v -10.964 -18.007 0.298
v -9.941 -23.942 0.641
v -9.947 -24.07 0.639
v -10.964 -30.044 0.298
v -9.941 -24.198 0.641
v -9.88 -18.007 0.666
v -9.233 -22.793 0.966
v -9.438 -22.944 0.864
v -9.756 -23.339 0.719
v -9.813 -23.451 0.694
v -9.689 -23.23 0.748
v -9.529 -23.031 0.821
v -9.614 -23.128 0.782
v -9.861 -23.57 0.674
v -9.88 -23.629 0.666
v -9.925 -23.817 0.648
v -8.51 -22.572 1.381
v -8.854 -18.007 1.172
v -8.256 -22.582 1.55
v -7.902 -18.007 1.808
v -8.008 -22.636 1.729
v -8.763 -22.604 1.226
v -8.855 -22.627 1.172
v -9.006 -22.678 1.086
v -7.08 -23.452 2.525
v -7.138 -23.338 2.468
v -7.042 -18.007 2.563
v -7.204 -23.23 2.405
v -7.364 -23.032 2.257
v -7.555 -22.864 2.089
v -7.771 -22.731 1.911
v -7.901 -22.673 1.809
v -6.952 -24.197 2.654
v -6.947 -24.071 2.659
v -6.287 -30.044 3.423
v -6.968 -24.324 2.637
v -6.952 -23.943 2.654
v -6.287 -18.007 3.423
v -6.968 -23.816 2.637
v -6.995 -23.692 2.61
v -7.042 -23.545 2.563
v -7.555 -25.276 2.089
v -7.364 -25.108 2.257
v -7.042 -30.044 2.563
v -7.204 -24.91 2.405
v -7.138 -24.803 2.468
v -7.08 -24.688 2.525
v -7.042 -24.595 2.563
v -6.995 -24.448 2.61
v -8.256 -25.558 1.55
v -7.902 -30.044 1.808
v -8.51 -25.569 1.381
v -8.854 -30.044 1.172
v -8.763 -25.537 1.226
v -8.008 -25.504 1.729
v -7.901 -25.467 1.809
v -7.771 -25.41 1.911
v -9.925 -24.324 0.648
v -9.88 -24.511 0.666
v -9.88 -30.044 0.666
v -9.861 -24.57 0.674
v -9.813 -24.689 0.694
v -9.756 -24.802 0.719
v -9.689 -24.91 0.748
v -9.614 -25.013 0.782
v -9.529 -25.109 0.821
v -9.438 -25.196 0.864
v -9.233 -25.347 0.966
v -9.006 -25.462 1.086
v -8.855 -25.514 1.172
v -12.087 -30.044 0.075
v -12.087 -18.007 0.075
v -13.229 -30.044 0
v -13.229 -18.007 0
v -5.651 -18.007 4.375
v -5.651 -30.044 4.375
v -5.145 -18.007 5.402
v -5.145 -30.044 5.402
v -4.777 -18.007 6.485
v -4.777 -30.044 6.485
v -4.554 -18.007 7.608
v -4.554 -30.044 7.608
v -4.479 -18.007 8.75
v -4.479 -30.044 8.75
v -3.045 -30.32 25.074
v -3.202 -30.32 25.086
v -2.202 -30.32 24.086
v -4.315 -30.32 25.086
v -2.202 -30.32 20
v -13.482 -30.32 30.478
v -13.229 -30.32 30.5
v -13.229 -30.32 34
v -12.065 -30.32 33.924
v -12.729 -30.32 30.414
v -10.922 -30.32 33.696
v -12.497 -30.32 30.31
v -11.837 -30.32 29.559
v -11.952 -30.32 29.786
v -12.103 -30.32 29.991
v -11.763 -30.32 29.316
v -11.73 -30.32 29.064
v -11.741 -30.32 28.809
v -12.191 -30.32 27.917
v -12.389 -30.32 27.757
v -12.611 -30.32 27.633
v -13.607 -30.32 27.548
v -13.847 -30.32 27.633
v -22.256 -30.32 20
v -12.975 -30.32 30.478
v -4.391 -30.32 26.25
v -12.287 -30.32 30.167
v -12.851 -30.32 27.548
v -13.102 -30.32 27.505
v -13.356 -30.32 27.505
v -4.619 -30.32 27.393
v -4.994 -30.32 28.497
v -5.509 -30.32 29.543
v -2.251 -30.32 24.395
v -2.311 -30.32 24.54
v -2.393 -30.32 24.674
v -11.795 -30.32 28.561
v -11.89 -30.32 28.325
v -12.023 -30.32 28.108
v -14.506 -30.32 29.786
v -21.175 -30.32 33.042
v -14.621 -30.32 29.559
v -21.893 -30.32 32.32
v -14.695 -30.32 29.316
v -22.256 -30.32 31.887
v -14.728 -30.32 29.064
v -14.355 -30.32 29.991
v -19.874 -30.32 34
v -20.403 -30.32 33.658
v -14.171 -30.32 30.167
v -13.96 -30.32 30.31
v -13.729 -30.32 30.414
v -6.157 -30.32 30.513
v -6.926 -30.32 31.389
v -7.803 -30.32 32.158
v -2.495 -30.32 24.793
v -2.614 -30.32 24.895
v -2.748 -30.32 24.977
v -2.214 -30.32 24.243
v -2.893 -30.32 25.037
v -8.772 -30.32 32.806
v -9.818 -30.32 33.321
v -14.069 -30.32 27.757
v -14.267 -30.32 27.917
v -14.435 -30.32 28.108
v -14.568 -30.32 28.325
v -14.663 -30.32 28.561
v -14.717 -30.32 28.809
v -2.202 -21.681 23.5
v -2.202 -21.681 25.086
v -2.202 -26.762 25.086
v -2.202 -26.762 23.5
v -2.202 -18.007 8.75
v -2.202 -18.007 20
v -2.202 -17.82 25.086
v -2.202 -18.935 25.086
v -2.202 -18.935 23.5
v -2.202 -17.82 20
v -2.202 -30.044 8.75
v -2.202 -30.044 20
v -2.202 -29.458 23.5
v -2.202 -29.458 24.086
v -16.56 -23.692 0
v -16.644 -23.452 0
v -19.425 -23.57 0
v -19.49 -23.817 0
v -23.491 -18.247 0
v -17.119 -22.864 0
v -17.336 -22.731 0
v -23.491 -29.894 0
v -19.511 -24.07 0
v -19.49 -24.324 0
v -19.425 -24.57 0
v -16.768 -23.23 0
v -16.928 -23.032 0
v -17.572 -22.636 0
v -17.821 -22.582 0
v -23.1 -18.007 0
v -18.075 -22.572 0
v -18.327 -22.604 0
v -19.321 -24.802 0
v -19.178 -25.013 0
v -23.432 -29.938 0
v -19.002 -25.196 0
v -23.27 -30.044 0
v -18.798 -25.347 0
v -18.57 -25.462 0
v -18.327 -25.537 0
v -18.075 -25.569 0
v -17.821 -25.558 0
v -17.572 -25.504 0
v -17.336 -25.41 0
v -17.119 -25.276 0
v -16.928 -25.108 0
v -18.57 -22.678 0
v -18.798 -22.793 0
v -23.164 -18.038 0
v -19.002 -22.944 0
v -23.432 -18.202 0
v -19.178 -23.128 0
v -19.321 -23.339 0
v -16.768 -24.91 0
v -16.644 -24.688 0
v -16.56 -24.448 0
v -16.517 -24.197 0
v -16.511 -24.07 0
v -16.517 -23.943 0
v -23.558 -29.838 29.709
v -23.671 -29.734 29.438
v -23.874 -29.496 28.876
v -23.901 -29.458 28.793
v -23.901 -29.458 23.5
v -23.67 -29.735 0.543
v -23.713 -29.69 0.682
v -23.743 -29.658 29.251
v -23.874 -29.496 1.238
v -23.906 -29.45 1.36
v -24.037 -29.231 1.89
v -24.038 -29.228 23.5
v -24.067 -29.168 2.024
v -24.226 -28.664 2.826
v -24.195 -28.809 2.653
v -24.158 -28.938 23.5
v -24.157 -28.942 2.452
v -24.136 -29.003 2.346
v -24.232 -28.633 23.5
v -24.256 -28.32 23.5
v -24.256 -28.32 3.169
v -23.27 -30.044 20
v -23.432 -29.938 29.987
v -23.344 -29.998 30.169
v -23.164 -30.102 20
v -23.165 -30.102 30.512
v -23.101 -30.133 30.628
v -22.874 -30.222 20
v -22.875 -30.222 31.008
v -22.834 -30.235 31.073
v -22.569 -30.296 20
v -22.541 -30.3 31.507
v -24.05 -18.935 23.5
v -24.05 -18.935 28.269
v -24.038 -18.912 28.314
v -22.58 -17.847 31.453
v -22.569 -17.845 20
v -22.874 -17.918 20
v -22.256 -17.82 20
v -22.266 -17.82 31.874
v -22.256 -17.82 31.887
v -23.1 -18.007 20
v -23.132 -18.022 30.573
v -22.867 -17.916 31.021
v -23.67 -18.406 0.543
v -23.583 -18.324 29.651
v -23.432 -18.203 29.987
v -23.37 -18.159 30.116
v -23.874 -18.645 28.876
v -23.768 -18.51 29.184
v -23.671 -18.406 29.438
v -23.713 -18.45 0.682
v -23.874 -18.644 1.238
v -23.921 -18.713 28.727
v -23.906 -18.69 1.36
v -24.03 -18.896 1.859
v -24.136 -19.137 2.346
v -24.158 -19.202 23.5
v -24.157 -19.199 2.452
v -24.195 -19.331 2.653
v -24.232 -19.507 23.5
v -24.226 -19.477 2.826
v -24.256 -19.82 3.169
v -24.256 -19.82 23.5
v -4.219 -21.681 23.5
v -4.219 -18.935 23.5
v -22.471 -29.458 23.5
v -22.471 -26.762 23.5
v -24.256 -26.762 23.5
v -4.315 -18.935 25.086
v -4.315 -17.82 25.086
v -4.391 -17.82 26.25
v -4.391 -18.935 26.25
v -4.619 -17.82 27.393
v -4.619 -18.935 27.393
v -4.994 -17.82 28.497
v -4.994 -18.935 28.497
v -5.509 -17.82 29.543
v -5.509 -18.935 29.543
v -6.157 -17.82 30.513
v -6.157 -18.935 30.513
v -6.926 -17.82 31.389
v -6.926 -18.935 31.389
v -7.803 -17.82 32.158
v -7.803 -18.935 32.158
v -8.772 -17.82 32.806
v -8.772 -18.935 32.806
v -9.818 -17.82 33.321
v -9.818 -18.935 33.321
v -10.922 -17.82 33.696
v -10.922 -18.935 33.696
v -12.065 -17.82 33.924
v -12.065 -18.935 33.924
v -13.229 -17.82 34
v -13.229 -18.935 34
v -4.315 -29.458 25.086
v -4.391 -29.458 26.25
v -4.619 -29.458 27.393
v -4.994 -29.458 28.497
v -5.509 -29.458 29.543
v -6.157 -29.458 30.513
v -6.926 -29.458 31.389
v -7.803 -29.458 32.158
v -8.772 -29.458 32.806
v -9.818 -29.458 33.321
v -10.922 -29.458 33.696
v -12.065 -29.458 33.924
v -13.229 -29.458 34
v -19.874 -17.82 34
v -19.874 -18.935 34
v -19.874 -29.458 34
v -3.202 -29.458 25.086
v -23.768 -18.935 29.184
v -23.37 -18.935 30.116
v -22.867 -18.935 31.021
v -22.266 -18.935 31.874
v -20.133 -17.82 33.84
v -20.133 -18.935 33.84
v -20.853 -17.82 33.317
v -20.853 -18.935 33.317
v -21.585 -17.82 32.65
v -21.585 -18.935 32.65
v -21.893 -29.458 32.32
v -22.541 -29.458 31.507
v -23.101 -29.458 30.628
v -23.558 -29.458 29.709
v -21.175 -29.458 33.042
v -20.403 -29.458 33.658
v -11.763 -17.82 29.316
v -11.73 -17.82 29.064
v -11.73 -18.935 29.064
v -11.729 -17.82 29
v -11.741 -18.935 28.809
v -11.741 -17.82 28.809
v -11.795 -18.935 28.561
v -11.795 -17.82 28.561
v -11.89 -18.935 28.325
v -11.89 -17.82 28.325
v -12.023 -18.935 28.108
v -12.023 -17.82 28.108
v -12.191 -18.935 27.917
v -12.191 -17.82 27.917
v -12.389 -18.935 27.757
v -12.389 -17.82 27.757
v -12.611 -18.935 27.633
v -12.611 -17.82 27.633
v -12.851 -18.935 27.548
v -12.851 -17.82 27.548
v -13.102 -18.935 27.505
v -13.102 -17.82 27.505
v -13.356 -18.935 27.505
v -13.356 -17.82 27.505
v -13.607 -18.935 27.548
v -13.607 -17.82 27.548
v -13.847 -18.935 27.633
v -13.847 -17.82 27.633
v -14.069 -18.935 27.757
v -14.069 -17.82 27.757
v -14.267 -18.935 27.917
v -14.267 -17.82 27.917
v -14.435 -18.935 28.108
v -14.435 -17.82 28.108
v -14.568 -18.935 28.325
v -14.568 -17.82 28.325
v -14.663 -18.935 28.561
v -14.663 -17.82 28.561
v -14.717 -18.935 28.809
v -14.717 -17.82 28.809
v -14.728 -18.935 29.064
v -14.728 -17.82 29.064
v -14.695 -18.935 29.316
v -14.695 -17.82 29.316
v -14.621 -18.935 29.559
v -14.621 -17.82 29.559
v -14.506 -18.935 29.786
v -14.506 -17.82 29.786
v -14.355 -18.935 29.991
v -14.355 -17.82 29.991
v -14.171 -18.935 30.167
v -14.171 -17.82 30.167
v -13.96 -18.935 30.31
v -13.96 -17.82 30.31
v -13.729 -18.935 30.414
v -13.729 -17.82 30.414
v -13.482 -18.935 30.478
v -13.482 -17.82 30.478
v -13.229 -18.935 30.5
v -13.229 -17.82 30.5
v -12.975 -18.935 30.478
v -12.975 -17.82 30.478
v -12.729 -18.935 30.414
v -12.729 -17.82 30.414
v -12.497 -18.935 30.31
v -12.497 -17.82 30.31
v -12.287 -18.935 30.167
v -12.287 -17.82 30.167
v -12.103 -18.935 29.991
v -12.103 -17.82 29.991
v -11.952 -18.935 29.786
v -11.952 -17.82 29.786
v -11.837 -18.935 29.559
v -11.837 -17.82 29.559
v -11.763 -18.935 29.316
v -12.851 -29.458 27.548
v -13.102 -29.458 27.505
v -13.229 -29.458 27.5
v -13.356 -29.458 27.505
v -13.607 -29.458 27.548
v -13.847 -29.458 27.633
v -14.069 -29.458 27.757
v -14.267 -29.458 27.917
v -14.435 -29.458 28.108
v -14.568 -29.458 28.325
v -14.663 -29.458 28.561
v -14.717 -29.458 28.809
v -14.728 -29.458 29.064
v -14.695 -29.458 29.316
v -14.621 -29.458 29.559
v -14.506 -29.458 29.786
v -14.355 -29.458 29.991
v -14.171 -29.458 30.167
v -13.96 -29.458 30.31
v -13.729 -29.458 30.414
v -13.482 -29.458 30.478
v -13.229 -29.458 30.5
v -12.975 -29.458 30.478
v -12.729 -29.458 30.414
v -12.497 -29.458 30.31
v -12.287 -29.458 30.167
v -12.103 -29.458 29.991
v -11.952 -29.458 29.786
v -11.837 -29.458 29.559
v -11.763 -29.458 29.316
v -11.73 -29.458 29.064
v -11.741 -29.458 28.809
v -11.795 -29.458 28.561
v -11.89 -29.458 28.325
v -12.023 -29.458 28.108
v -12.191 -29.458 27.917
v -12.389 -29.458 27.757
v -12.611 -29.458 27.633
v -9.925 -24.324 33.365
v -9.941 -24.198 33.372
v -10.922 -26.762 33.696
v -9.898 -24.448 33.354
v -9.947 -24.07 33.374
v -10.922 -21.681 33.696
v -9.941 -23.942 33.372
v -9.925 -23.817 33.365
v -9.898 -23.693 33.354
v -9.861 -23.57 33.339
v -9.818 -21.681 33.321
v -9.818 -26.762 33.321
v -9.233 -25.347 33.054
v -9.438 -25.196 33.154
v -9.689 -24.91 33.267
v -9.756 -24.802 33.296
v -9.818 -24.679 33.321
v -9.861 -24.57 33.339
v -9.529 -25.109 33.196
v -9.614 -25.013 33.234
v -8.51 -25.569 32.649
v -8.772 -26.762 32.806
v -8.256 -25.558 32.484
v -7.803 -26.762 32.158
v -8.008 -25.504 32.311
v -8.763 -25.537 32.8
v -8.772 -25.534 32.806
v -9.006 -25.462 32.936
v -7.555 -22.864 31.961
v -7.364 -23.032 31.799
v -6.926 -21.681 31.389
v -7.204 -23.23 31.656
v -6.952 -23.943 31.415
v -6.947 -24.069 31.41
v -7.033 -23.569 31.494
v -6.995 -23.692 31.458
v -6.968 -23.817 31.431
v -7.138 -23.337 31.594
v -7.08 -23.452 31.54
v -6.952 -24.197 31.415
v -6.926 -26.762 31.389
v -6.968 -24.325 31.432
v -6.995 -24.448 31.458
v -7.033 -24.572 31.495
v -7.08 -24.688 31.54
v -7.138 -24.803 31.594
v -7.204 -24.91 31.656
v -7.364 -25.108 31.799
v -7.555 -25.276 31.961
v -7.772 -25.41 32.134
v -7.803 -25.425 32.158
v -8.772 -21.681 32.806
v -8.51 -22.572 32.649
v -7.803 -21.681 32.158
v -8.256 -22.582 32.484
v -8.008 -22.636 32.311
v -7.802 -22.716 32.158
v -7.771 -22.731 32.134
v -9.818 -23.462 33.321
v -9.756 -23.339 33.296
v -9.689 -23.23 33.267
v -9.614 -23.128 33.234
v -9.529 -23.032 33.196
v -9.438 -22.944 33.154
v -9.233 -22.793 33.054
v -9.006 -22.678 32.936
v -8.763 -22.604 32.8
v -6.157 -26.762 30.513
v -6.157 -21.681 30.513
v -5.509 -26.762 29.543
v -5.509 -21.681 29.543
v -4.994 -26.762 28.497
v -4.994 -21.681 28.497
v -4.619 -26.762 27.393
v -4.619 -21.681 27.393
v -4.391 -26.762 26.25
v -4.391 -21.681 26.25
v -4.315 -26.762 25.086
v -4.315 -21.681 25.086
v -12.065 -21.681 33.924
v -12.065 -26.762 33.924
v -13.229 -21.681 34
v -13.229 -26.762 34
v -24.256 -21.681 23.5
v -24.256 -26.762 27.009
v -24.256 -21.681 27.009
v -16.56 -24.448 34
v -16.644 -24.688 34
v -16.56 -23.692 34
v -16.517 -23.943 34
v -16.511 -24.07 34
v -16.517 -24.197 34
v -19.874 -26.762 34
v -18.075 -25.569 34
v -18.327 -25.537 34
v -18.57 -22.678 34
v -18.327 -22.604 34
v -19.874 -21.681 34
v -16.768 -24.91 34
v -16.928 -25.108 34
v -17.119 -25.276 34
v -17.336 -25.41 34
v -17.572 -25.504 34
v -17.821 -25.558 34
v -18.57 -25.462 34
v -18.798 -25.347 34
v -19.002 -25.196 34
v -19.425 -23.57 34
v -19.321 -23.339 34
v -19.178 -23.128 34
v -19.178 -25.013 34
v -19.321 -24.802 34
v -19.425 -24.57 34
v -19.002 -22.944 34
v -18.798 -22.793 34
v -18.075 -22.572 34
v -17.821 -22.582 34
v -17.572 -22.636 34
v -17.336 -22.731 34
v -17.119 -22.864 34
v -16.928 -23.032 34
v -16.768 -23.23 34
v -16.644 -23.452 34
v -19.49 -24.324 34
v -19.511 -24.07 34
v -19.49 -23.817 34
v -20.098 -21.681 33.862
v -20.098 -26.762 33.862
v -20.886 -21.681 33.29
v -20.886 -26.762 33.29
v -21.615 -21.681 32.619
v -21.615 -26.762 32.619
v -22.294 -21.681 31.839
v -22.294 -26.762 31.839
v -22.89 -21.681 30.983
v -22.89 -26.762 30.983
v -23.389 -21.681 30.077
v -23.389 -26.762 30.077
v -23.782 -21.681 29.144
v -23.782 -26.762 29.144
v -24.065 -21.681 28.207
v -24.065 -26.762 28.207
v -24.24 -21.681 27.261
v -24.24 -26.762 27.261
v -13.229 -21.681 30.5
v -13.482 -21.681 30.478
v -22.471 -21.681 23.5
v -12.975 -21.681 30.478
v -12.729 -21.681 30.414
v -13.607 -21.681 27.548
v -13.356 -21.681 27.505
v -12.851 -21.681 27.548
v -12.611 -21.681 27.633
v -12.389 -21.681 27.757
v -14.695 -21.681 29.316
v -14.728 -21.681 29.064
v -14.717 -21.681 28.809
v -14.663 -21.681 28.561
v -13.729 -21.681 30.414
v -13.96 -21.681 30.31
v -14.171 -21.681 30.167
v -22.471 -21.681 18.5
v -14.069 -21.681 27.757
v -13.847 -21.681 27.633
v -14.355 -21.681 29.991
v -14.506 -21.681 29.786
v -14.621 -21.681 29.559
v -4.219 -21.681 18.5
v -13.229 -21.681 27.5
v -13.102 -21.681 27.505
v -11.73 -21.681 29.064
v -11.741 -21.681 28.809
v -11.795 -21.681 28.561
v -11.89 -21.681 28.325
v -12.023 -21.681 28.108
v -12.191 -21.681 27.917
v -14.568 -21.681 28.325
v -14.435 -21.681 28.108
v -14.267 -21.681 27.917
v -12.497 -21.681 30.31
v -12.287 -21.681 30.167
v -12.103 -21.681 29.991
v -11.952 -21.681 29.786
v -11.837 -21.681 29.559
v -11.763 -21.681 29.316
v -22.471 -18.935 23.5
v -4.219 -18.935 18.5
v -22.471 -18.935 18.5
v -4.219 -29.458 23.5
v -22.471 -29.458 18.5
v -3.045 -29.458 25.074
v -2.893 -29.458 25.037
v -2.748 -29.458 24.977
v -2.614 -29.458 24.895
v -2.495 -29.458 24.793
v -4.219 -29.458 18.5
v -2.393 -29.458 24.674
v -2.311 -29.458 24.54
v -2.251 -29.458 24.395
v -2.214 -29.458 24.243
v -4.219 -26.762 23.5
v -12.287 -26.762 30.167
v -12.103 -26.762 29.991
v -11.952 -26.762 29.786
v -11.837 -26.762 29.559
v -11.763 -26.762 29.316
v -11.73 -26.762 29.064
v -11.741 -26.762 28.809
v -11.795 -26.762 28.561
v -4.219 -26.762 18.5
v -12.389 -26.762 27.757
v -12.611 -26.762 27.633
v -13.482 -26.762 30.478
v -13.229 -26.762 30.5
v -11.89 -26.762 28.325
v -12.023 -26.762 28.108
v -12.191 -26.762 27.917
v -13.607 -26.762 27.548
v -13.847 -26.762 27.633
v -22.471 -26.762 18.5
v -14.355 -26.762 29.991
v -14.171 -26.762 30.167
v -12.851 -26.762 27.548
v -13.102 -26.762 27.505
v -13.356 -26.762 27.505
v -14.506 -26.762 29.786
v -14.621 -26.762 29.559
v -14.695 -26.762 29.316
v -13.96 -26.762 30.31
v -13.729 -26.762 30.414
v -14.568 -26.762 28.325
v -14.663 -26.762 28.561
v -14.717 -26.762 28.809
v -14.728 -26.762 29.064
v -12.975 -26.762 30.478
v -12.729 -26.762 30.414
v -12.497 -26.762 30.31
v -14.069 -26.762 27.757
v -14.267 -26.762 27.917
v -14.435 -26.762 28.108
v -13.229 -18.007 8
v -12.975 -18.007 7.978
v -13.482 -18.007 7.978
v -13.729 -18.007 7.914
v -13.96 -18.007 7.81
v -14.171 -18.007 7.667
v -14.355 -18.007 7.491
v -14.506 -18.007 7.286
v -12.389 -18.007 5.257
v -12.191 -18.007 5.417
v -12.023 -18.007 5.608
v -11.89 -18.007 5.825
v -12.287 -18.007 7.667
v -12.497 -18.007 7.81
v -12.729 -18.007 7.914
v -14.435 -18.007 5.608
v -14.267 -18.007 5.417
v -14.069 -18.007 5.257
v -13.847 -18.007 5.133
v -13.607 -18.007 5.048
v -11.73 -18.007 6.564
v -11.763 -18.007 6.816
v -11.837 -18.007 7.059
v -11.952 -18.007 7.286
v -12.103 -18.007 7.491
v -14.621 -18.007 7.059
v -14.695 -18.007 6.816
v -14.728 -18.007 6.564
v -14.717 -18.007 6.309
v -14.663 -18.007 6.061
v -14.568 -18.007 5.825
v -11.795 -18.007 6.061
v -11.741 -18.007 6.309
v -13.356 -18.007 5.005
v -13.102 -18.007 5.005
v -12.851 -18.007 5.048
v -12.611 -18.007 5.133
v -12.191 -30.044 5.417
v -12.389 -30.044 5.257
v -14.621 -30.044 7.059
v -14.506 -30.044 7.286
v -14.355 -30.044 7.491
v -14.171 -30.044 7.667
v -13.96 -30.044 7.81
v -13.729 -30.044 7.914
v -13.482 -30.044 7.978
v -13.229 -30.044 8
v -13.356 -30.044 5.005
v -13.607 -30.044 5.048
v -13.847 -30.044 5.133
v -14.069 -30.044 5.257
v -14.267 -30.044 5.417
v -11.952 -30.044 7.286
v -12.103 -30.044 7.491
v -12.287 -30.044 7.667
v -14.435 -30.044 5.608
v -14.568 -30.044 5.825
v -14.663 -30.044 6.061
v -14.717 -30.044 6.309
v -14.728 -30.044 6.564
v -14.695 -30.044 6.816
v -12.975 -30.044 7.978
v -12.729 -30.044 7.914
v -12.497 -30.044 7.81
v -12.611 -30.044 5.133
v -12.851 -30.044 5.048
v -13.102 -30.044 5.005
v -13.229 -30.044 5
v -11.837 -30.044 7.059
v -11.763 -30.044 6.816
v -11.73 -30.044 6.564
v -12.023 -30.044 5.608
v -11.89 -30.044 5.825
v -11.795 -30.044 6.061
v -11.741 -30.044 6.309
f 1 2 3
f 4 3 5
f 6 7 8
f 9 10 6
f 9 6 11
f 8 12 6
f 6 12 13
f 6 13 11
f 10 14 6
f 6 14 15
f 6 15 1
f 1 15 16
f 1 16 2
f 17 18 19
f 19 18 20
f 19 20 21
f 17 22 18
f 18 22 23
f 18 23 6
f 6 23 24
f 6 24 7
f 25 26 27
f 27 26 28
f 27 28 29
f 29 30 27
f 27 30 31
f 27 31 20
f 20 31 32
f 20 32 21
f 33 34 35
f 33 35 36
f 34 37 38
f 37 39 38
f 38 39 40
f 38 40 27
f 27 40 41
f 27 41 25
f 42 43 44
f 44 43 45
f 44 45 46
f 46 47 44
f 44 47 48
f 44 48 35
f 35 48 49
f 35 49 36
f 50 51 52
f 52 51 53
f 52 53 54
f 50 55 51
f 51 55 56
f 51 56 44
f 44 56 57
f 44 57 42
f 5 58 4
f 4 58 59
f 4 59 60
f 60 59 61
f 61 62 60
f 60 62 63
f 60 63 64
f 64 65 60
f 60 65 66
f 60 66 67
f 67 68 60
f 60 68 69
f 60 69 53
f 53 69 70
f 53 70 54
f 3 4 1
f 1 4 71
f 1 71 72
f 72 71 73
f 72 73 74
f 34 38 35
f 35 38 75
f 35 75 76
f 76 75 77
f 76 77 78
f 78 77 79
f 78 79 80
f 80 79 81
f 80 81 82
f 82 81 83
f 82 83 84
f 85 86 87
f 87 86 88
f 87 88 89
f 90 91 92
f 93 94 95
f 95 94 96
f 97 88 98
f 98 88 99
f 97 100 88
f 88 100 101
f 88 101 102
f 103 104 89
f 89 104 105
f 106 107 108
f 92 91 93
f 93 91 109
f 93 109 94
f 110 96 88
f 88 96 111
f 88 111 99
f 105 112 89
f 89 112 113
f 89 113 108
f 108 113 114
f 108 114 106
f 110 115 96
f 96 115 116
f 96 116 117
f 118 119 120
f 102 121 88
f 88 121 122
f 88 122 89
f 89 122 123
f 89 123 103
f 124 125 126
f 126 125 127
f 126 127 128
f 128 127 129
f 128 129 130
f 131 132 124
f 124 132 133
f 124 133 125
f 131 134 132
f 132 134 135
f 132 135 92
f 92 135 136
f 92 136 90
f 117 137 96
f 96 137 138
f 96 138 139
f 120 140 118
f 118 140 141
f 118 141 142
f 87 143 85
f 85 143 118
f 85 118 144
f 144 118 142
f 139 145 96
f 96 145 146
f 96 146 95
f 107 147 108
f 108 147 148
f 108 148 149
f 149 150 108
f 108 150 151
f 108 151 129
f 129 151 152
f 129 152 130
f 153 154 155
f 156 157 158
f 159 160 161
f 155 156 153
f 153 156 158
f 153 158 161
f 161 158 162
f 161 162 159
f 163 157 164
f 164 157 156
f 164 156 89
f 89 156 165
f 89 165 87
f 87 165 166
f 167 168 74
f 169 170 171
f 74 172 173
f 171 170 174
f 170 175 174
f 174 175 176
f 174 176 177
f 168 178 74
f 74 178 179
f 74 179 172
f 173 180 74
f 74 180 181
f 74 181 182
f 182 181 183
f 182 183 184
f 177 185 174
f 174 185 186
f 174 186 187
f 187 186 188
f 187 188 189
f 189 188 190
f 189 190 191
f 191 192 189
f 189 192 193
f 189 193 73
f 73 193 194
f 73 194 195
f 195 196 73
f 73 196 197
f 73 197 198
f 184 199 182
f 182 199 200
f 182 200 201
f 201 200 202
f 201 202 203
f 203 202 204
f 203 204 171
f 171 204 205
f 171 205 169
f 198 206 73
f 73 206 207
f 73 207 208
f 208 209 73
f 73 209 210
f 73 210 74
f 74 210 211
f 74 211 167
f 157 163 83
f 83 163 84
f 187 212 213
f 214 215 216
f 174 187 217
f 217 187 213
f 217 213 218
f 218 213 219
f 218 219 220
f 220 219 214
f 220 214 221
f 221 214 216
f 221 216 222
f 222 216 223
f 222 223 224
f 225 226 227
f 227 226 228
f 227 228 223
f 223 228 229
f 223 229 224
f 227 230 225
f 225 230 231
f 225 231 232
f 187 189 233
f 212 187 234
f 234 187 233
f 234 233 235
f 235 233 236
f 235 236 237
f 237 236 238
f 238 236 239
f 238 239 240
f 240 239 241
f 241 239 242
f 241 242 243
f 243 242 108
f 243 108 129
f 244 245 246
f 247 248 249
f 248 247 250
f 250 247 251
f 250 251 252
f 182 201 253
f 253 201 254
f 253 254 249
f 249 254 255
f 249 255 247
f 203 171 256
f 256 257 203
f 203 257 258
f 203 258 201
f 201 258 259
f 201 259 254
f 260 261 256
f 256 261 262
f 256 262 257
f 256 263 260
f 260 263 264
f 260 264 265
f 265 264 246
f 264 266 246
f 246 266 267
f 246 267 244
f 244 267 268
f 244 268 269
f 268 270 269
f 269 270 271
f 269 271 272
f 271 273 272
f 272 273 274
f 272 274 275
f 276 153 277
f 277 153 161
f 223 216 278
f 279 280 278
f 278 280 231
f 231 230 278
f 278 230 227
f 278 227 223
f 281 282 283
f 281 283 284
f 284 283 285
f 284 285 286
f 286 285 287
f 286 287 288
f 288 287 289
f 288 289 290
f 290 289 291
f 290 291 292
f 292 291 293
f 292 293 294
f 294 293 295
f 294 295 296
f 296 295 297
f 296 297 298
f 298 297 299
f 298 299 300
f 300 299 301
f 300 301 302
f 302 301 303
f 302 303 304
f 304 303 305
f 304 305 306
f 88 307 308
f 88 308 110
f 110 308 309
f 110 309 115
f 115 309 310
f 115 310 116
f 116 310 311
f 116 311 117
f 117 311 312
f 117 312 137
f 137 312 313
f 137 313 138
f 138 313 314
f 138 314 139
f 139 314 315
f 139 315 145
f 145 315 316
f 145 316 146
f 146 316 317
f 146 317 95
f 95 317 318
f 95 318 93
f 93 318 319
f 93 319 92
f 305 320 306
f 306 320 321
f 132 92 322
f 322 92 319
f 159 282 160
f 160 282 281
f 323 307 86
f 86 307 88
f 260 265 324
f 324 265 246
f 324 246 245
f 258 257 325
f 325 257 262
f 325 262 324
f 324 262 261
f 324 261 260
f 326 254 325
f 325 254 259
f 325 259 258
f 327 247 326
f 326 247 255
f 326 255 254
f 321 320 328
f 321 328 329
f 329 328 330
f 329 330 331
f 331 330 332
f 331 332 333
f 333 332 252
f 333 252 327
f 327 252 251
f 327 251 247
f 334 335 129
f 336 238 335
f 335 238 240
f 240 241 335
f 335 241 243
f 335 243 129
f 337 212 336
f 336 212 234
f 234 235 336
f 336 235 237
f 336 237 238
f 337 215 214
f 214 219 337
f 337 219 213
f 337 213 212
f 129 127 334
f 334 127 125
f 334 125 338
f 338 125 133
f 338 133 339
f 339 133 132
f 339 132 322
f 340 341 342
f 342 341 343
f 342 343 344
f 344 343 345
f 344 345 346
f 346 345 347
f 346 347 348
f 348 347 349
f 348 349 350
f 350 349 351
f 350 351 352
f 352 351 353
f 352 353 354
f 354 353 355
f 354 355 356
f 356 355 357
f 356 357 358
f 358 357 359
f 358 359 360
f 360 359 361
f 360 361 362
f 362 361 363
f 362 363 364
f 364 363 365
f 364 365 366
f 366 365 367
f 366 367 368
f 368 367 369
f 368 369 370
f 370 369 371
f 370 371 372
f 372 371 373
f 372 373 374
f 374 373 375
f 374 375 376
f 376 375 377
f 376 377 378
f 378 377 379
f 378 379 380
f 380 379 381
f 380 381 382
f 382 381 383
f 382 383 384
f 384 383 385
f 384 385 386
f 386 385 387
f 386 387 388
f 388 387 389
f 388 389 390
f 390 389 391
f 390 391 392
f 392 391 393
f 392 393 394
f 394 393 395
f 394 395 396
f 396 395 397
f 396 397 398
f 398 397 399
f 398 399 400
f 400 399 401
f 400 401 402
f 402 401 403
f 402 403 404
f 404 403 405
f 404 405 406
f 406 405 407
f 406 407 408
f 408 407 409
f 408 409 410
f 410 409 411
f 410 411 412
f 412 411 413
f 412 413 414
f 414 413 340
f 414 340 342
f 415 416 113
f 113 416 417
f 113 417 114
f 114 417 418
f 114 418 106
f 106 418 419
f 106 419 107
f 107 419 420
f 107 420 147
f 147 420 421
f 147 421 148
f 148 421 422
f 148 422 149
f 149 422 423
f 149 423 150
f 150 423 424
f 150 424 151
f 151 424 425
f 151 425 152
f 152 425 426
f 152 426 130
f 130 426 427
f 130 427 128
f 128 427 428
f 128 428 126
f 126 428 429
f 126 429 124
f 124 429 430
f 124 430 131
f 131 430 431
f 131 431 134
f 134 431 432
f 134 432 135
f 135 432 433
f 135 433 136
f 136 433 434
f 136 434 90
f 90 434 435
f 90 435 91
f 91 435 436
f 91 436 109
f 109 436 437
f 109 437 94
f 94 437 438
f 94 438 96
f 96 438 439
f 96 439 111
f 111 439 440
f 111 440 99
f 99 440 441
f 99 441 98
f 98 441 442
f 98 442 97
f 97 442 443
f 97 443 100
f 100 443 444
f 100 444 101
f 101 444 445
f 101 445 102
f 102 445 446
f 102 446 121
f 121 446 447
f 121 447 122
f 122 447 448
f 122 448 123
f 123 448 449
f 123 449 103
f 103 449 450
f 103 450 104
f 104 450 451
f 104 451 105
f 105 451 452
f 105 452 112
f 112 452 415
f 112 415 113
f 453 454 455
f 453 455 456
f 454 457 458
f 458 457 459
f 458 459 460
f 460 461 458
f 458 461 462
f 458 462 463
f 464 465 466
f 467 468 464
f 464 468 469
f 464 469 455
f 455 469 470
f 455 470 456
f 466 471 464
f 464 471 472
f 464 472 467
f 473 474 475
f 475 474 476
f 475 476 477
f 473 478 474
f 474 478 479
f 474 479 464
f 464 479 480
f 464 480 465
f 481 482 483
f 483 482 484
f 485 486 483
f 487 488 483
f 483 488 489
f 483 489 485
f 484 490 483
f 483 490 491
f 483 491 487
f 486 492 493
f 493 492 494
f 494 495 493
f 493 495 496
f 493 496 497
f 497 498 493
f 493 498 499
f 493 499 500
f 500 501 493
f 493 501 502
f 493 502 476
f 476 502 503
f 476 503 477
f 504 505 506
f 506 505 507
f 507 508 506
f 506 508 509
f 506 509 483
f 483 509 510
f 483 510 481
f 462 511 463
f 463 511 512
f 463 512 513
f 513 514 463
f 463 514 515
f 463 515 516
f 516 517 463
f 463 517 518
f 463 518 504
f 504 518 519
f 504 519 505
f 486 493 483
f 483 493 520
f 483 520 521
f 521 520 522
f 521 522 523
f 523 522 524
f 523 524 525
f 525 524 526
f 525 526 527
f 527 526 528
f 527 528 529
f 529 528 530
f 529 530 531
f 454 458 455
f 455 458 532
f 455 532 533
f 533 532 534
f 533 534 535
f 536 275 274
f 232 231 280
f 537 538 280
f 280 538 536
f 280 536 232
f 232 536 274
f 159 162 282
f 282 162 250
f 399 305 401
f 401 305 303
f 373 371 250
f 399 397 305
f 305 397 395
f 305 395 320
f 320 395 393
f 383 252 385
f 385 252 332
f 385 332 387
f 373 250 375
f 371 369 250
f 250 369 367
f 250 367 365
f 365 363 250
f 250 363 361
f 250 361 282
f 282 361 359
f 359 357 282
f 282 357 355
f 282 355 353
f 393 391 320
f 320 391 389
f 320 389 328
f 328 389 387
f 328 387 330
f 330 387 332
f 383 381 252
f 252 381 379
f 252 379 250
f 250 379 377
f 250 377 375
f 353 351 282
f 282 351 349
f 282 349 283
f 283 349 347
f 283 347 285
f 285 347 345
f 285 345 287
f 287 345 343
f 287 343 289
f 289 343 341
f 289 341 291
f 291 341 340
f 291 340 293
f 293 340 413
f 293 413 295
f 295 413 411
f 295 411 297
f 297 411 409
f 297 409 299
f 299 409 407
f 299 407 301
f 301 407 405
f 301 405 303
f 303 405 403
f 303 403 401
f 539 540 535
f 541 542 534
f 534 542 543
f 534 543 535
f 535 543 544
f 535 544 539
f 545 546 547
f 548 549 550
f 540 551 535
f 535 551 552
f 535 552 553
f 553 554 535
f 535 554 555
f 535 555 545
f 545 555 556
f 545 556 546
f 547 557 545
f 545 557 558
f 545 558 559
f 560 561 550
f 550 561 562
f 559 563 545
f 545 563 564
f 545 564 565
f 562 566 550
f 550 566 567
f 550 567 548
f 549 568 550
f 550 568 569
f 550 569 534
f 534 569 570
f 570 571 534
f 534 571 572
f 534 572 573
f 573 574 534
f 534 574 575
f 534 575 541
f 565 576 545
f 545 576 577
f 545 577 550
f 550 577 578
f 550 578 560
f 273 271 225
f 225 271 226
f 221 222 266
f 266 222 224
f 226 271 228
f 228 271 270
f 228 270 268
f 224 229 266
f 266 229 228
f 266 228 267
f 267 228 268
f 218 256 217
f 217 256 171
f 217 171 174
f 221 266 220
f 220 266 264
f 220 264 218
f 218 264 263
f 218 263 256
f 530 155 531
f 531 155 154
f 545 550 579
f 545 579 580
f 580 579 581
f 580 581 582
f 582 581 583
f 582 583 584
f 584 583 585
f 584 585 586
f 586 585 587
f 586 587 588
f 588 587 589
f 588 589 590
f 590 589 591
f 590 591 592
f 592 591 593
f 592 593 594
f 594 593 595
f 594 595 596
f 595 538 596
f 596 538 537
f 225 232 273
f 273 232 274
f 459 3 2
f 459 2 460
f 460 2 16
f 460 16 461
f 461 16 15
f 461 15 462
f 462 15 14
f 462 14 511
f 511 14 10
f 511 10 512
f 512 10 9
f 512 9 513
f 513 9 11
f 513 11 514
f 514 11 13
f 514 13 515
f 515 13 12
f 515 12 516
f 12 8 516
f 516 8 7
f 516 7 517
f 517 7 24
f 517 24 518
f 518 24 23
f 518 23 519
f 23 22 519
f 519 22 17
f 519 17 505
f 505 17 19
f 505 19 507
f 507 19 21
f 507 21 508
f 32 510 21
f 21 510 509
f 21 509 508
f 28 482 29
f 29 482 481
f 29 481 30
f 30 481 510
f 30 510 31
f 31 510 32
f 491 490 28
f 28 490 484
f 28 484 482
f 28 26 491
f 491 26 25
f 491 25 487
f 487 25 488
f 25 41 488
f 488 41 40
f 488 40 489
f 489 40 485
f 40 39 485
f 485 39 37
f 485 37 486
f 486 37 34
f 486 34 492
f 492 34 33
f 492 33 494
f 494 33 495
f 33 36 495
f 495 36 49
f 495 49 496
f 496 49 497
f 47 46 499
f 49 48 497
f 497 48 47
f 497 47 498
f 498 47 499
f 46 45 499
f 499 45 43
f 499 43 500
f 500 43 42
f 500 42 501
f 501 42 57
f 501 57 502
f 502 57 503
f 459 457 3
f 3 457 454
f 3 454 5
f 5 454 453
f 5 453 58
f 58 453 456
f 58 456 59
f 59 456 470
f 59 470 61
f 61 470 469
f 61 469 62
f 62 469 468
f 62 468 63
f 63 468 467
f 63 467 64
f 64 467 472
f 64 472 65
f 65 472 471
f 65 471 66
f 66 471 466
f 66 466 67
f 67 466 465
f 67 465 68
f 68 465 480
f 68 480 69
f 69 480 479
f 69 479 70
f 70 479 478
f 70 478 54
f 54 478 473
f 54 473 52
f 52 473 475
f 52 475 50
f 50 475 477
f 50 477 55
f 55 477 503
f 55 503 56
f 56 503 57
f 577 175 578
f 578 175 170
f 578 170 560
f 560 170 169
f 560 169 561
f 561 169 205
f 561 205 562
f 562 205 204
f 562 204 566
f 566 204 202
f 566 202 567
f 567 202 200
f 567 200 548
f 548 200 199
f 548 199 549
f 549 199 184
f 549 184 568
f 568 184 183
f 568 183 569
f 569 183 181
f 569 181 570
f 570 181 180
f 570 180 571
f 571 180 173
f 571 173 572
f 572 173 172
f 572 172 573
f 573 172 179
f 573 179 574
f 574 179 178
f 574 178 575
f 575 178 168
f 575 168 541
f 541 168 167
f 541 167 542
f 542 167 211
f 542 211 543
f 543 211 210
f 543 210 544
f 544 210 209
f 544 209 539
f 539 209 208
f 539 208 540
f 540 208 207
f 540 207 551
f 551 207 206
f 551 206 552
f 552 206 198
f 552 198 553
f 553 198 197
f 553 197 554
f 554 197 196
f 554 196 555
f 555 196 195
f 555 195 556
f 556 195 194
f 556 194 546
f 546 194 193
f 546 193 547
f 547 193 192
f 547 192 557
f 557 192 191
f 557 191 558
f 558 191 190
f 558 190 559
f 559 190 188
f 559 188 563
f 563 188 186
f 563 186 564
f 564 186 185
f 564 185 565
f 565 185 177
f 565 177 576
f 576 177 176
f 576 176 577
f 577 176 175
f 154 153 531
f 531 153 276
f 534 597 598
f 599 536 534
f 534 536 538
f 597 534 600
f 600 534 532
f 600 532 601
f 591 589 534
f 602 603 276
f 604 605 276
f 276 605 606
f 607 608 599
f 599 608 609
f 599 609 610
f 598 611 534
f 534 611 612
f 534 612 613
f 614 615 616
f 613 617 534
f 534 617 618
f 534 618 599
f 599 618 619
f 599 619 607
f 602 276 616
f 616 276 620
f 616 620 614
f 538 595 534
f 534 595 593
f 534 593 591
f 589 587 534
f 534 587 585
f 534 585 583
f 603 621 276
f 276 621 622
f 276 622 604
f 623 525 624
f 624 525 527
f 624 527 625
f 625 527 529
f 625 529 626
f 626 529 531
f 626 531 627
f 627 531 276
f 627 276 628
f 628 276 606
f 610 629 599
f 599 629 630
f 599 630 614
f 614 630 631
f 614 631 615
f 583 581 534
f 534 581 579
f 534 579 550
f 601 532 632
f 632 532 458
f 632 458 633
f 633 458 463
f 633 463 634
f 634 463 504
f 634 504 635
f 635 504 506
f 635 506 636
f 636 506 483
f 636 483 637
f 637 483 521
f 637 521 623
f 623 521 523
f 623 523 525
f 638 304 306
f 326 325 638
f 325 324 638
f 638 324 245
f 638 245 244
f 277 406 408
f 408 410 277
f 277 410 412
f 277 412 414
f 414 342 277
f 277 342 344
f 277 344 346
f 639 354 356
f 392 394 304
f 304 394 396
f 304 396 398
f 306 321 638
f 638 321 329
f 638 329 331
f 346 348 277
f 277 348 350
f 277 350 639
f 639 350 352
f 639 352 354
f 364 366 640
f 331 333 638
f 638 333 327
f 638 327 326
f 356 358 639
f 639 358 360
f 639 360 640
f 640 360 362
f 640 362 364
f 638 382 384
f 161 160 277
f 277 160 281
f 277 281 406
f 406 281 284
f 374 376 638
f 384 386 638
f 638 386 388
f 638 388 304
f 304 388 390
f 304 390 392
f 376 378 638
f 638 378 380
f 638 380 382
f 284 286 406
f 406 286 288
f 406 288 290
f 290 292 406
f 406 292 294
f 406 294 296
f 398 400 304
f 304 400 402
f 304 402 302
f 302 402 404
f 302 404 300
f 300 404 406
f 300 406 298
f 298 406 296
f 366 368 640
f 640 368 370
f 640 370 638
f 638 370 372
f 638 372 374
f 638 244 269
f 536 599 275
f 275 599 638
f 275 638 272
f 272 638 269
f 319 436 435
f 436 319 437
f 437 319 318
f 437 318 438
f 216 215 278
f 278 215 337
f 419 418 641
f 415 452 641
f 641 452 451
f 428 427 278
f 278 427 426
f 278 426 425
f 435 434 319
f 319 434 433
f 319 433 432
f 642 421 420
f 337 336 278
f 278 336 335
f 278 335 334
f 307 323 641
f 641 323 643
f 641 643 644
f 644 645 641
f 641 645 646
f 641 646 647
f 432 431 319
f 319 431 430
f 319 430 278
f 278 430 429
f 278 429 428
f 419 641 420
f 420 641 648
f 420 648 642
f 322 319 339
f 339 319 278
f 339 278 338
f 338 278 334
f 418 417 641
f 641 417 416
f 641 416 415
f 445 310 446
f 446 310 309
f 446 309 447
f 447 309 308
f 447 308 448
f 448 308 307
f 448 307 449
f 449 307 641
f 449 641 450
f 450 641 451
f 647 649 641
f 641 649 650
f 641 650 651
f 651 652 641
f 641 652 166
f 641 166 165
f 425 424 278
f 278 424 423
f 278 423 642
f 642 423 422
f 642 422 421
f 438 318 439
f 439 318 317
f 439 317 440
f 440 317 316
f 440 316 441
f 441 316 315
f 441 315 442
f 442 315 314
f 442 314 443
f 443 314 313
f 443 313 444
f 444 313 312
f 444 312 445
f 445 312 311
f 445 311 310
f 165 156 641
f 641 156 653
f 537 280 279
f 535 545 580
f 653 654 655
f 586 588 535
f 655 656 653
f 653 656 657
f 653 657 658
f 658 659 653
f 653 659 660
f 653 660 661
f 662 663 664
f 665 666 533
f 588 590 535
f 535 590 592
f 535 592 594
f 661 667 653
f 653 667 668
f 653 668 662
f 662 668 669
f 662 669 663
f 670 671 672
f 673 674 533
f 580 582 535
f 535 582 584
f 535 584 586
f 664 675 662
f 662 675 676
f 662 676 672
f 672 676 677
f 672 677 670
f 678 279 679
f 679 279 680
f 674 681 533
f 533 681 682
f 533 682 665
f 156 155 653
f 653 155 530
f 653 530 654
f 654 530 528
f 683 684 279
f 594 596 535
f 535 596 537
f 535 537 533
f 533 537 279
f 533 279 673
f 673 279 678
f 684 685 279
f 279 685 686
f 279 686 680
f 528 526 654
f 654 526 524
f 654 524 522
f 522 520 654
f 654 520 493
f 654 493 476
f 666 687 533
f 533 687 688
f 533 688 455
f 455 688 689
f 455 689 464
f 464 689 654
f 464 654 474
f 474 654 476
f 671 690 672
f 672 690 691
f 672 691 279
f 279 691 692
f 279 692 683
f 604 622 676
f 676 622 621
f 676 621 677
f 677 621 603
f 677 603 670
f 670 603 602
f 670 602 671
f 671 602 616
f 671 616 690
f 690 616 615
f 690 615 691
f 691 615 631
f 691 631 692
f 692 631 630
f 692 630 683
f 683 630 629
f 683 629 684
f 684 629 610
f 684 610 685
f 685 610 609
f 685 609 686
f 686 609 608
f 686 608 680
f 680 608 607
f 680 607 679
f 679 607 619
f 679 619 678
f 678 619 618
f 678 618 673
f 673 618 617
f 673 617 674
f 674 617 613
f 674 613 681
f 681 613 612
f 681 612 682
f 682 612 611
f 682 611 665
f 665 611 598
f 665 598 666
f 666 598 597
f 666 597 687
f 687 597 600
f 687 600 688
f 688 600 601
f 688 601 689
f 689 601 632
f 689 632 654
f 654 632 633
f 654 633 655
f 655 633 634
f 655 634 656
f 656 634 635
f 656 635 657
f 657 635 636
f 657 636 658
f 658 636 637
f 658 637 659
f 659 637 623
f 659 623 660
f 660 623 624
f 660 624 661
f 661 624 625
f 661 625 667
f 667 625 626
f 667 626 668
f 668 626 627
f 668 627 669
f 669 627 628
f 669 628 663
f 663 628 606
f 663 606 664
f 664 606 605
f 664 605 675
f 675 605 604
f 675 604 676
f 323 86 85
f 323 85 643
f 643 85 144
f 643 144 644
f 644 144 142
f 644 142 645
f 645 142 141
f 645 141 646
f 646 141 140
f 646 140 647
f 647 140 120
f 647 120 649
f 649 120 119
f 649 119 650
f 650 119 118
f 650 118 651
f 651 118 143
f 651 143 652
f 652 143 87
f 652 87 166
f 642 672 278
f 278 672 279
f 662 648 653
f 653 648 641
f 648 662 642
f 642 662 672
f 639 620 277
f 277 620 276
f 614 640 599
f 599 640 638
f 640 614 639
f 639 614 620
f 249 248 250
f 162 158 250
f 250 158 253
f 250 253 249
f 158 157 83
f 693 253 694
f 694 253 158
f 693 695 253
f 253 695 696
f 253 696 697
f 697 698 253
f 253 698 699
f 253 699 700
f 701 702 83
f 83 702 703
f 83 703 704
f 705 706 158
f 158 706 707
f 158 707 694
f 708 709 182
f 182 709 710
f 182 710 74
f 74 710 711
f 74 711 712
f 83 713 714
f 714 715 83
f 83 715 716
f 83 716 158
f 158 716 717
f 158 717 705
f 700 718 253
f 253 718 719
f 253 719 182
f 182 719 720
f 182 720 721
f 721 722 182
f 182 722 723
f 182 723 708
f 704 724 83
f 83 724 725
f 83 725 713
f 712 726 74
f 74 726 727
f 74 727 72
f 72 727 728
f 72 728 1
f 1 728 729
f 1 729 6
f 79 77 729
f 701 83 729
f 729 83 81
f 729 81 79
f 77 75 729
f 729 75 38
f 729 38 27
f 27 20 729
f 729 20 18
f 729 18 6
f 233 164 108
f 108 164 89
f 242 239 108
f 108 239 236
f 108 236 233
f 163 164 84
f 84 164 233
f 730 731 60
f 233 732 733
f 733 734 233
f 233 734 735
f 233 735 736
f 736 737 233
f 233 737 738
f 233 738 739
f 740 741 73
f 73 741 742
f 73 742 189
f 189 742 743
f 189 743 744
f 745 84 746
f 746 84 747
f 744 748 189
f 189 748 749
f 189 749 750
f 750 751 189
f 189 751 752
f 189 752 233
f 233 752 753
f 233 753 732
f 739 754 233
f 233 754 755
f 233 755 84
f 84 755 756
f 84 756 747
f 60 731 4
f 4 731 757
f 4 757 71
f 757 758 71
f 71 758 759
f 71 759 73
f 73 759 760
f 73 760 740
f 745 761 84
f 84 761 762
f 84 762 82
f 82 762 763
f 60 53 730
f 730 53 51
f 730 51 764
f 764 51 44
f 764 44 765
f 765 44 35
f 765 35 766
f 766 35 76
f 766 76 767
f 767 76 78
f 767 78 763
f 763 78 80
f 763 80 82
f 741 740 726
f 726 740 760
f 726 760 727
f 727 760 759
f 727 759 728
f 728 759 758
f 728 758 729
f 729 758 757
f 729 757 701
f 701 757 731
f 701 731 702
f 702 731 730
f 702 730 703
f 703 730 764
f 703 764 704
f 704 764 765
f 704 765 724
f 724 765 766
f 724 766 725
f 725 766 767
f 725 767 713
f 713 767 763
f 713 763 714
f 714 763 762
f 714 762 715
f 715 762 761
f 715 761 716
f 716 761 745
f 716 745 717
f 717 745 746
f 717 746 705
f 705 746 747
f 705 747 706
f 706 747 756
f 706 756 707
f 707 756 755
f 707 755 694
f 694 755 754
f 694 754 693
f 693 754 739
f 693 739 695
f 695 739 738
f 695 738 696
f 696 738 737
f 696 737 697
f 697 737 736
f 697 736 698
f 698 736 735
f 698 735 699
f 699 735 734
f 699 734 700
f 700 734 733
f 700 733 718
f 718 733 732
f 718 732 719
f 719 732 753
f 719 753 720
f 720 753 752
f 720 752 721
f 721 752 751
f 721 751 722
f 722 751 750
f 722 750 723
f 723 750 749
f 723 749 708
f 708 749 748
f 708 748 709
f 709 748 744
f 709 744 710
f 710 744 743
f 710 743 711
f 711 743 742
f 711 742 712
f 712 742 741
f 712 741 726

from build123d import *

# Parameters (mm, degrees)
SKETCH1_W               = 22.054431489
SKETCH1_H               = 12.5
BOSS_EXTRUDE1_DEPTH     = 34
CUT_EXTRUDE1_DEPTH      = 10
CUT_EXTRUDE1_DEPTH_BACK = 15
SKETCH2_R               = 1.5
FILLET3_R               = 2
SKETCH5_R               = 1.5
CUT_EXTRUDE4_DEPTH      = 52.610795679
SKETCH16_W              = 22.066089364
SKETCH16_H              = 2.745994046
SKETCH16_H_2            = 2.696035541
CUT_EXTRUDE6_DEPTH      = 14.5
FILLET4_R               = 1
SKETCH17_W              = 18.252824183
SKETCH17_H              = 2.745994046
SKETCH17_H_2            = 2.696035541
CUT_EXTRUDE7_DEPTH      = 5
SKETCH18_W              = 24.333833062
SKETCH18_H              = 0.605314718
SKETCH18_H_2            = 0.725933663
CUT_EXTRUDE8_DEPTH      = 20


with BuildPart() as part:
    # Sketch1 → Boss-Extrude1 (new body)
    with BuildSketch(Plane.XY):
        with Locations((-13.228930986, -24.070183414)):
            Rectangle(SKETCH1_W, SKETCH1_H)
    extrude(amount=BOSS_EXTRUDE1_DEPTH)

    # Sketch2 → Cut-Extrude1 (cut, two sides: drawn at the far end of the back side and taken through both)
    with BuildSketch(Plane.XZ.offset(30.320183414).offset(-CUT_EXTRUDE1_DEPTH_BACK)):
        with Locations(Location((-13.228930986, 6.5, 0), (0, 0, 90))):
            Circle(SKETCH2_R)
        with Locations(Location((-13.228930986, 29, 0), (0, 0, 90))):
            Circle(SKETCH2_R)
        with BuildLine():
            Line((-4.315096089, 25.086165103), (-2.201715242, 25.086165103))
            add(Edge.make_bspline(
                [(-24.256146731, 25.458595261), (-35.656041951, 36.540332573), (-13.006901701, 52.285060009), (9.32231541, 36.338450422), (-2.201715242, 25.086165103)],
                knots=[0, 0, 0, 0, 0.496841919, 1, 1, 1, 1], degree=3))
            add(Edge.make_bspline(
                [(-13.228930986, 34), (-19.086447972, 37.422293362), (-24.885707195, 30.868976401), (-24.256146731, 25.458595261)],
                knots=[0, 0, 0, 0, 1, 1, 1, 1], degree=3))
            ThreePointArc((-13.228930986, 34), (-6.925897884, 31.389198205), (-4.315096089, 25.086165103))
        make_face()
        with BuildLine():
            Line((-4.478930986, 8.75), (-2.201715242, 8.75))
            add(Edge.make_bspline(
                [(-2.201715242, 8.75), (5.39210746, 3.880294823), (-0.777052631, -4.523329032), (-17.174300591, -10.623347238), (-34.821400648, -0.026005424), (-24.256146731, 8.75)],
                knots=[0, 0, 0, 0, 0.283272691, 0.504244858, 1, 1, 1, 1], degree=3))
            add(Edge.make_bspline(
                [(-23.490579314, 0), (-24.966512963, 4.237786421), (-24.256146731, 8.75)],
                knots=[0, 0, 0, 1, 1, 1], degree=2))
            Line((-23.490579314, 0), (-13.228930986, 0))
            ThreePointArc((-13.228930986, 0), (-7.041746651, 2.562815665), (-4.478930986, 8.75))
        make_face()
    extrude(amount=CUT_EXTRUDE1_DEPTH + CUT_EXTRUDE1_DEPTH_BACK, mode=Mode.SUBTRACT)

    # Fillet3
    # the kernel refuses this fillet: 2 mm, written as the material it takes off along each edge
    with BuildSketch(Plane(origin=(-24.256146731, -17.820183414, -1.998495188), x_dir=(1, 0, 0), z_dir=(0, 0, 1))) as fillet3_piece_1:
        with BuildLine():
            CenterArc((FILLET3_R, -FILLET3_R), FILLET3_R, 90, 90)
            Line((0, -FILLET3_R), (0, 0))
            Line((0, 0), (FILLET3_R, 0))
        make_face()
    extrude(amount=34.125242274, mode=Mode.SUBTRACT)
    with BuildSketch(Plane(origin=(-24.256146731, -30.320183414, -1.998495188), x_dir=(1, 0, 0), z_dir=(0, 0, 1))) as fillet3_piece_2:
        with BuildLine():
            CenterArc((FILLET3_R, FILLET3_R), FILLET3_R, 180, 90)
            Line((0, FILLET3_R), (0, 0))
            Line((0, 0), (FILLET3_R, 0))
        make_face()
    extrude(amount=34.125242274, mode=Mode.SUBTRACT)
    with BuildSketch(Plane(origin=(-24.256146731, -17.374523396, 3.001504812), x_dir=(0.1667681859257429, 1.4874647964432132e-15, -0.9859961319209304), z_dir=(0, -1, 0))) as fillet3_piece_3:
        with BuildLine():
            CenterArc((0.168096911, 1.999974157), FILLET3_R, 260.400032587, 9.891234523)
            Line((-0.165439461, 0.027981894), (0, 0))
            ThreePointArc((0, 0), (0.089132004, -0.000226606), (0.178264007, 0))
        make_face()
    extrude(amount=13.331280444, mode=Mode.SUBTRACT)
    with BuildSketch(Plane(origin=(-24.256146731, -17.482274803, 27.126747086), x_dir=(0.11756979569322837, -1.02728794699617e-15, 0.9930646218351818), z_dir=(0, -1, 0))) as fillet3_piece_4:
        with BuildLine():
            CenterArc((0.118560979, -1.999931088), FILLET3_R, 89.524368939, 7.227500304)
            Line((-0.116578613, -0.013801845), (0, 0))
            ThreePointArc((0, 0), (0.067581725, 0.000281106), (0.135163444, 0))
        make_face()
    extrude(amount=13.131401648, mode=Mode.SUBTRACT)

    # Sketch5 → Cut-Extrude4 (cut, through all)
    with BuildSketch(Plane.XY):
        with Locations((-18.011106811, -24.070183414)):
            Circle(SKETCH5_R)
        with Locations(Location((-8.446755162, -24.070183414, 0), (0, 0, 180))):
            Circle(SKETCH5_R)
    extrude(amount=CUT_EXTRUDE4_DEPTH, mode=Mode.SUBTRACT)

    # Sketch16 → Cut-Extrude6 (cut)
    with BuildSketch(Plane.XY.offset(38)):
        with Locations((-13.228930985, -20.307980077)):
            Rectangle(SKETCH16_W, SKETCH16_H)
        with Locations((-13.228930985, -28.109934669)):
            Rectangle(SKETCH16_W, SKETCH16_H_2)
    extrude(amount=-CUT_EXTRUDE6_DEPTH, mode=Mode.SUBTRACT)

    # Fillet4
    fillet4_edges = [part.edges().sort_by_distance(p)[0] for p in [
        (-2.201715242, -29.889067926, 25.086165103),
    ]]
    fillet(fillet4_edges, radius=FILLET4_R)

    # Sketch17 → Cut-Extrude7 (cut)
    with BuildSketch(Plane.XY.offset(23.5)):
        with Locations((-13.345007216, -20.307980077)):
            Rectangle(SKETCH17_W, SKETCH17_H)
        with Locations((-13.345007216, -28.109934669)):
            Rectangle(SKETCH17_W, SKETCH17_H_2)
    extrude(amount=-CUT_EXTRUDE7_DEPTH, mode=Mode.SUBTRACT)

    # Sketch18 → Cut-Extrude8 (cut)
    with BuildSketch(Plane.XY):
        with Locations((-12.791033736, -17.704302546)):
            Rectangle(SKETCH18_W, SKETCH18_H)
        with Locations((-12.791033736, -30.407371646)):
            Rectangle(SKETCH18_W, SKETCH18_H_2)
    extrude(amount=CUT_EXTRUDE8_DEPTH, mode=Mode.SUBTRACT)


solid = part.part
